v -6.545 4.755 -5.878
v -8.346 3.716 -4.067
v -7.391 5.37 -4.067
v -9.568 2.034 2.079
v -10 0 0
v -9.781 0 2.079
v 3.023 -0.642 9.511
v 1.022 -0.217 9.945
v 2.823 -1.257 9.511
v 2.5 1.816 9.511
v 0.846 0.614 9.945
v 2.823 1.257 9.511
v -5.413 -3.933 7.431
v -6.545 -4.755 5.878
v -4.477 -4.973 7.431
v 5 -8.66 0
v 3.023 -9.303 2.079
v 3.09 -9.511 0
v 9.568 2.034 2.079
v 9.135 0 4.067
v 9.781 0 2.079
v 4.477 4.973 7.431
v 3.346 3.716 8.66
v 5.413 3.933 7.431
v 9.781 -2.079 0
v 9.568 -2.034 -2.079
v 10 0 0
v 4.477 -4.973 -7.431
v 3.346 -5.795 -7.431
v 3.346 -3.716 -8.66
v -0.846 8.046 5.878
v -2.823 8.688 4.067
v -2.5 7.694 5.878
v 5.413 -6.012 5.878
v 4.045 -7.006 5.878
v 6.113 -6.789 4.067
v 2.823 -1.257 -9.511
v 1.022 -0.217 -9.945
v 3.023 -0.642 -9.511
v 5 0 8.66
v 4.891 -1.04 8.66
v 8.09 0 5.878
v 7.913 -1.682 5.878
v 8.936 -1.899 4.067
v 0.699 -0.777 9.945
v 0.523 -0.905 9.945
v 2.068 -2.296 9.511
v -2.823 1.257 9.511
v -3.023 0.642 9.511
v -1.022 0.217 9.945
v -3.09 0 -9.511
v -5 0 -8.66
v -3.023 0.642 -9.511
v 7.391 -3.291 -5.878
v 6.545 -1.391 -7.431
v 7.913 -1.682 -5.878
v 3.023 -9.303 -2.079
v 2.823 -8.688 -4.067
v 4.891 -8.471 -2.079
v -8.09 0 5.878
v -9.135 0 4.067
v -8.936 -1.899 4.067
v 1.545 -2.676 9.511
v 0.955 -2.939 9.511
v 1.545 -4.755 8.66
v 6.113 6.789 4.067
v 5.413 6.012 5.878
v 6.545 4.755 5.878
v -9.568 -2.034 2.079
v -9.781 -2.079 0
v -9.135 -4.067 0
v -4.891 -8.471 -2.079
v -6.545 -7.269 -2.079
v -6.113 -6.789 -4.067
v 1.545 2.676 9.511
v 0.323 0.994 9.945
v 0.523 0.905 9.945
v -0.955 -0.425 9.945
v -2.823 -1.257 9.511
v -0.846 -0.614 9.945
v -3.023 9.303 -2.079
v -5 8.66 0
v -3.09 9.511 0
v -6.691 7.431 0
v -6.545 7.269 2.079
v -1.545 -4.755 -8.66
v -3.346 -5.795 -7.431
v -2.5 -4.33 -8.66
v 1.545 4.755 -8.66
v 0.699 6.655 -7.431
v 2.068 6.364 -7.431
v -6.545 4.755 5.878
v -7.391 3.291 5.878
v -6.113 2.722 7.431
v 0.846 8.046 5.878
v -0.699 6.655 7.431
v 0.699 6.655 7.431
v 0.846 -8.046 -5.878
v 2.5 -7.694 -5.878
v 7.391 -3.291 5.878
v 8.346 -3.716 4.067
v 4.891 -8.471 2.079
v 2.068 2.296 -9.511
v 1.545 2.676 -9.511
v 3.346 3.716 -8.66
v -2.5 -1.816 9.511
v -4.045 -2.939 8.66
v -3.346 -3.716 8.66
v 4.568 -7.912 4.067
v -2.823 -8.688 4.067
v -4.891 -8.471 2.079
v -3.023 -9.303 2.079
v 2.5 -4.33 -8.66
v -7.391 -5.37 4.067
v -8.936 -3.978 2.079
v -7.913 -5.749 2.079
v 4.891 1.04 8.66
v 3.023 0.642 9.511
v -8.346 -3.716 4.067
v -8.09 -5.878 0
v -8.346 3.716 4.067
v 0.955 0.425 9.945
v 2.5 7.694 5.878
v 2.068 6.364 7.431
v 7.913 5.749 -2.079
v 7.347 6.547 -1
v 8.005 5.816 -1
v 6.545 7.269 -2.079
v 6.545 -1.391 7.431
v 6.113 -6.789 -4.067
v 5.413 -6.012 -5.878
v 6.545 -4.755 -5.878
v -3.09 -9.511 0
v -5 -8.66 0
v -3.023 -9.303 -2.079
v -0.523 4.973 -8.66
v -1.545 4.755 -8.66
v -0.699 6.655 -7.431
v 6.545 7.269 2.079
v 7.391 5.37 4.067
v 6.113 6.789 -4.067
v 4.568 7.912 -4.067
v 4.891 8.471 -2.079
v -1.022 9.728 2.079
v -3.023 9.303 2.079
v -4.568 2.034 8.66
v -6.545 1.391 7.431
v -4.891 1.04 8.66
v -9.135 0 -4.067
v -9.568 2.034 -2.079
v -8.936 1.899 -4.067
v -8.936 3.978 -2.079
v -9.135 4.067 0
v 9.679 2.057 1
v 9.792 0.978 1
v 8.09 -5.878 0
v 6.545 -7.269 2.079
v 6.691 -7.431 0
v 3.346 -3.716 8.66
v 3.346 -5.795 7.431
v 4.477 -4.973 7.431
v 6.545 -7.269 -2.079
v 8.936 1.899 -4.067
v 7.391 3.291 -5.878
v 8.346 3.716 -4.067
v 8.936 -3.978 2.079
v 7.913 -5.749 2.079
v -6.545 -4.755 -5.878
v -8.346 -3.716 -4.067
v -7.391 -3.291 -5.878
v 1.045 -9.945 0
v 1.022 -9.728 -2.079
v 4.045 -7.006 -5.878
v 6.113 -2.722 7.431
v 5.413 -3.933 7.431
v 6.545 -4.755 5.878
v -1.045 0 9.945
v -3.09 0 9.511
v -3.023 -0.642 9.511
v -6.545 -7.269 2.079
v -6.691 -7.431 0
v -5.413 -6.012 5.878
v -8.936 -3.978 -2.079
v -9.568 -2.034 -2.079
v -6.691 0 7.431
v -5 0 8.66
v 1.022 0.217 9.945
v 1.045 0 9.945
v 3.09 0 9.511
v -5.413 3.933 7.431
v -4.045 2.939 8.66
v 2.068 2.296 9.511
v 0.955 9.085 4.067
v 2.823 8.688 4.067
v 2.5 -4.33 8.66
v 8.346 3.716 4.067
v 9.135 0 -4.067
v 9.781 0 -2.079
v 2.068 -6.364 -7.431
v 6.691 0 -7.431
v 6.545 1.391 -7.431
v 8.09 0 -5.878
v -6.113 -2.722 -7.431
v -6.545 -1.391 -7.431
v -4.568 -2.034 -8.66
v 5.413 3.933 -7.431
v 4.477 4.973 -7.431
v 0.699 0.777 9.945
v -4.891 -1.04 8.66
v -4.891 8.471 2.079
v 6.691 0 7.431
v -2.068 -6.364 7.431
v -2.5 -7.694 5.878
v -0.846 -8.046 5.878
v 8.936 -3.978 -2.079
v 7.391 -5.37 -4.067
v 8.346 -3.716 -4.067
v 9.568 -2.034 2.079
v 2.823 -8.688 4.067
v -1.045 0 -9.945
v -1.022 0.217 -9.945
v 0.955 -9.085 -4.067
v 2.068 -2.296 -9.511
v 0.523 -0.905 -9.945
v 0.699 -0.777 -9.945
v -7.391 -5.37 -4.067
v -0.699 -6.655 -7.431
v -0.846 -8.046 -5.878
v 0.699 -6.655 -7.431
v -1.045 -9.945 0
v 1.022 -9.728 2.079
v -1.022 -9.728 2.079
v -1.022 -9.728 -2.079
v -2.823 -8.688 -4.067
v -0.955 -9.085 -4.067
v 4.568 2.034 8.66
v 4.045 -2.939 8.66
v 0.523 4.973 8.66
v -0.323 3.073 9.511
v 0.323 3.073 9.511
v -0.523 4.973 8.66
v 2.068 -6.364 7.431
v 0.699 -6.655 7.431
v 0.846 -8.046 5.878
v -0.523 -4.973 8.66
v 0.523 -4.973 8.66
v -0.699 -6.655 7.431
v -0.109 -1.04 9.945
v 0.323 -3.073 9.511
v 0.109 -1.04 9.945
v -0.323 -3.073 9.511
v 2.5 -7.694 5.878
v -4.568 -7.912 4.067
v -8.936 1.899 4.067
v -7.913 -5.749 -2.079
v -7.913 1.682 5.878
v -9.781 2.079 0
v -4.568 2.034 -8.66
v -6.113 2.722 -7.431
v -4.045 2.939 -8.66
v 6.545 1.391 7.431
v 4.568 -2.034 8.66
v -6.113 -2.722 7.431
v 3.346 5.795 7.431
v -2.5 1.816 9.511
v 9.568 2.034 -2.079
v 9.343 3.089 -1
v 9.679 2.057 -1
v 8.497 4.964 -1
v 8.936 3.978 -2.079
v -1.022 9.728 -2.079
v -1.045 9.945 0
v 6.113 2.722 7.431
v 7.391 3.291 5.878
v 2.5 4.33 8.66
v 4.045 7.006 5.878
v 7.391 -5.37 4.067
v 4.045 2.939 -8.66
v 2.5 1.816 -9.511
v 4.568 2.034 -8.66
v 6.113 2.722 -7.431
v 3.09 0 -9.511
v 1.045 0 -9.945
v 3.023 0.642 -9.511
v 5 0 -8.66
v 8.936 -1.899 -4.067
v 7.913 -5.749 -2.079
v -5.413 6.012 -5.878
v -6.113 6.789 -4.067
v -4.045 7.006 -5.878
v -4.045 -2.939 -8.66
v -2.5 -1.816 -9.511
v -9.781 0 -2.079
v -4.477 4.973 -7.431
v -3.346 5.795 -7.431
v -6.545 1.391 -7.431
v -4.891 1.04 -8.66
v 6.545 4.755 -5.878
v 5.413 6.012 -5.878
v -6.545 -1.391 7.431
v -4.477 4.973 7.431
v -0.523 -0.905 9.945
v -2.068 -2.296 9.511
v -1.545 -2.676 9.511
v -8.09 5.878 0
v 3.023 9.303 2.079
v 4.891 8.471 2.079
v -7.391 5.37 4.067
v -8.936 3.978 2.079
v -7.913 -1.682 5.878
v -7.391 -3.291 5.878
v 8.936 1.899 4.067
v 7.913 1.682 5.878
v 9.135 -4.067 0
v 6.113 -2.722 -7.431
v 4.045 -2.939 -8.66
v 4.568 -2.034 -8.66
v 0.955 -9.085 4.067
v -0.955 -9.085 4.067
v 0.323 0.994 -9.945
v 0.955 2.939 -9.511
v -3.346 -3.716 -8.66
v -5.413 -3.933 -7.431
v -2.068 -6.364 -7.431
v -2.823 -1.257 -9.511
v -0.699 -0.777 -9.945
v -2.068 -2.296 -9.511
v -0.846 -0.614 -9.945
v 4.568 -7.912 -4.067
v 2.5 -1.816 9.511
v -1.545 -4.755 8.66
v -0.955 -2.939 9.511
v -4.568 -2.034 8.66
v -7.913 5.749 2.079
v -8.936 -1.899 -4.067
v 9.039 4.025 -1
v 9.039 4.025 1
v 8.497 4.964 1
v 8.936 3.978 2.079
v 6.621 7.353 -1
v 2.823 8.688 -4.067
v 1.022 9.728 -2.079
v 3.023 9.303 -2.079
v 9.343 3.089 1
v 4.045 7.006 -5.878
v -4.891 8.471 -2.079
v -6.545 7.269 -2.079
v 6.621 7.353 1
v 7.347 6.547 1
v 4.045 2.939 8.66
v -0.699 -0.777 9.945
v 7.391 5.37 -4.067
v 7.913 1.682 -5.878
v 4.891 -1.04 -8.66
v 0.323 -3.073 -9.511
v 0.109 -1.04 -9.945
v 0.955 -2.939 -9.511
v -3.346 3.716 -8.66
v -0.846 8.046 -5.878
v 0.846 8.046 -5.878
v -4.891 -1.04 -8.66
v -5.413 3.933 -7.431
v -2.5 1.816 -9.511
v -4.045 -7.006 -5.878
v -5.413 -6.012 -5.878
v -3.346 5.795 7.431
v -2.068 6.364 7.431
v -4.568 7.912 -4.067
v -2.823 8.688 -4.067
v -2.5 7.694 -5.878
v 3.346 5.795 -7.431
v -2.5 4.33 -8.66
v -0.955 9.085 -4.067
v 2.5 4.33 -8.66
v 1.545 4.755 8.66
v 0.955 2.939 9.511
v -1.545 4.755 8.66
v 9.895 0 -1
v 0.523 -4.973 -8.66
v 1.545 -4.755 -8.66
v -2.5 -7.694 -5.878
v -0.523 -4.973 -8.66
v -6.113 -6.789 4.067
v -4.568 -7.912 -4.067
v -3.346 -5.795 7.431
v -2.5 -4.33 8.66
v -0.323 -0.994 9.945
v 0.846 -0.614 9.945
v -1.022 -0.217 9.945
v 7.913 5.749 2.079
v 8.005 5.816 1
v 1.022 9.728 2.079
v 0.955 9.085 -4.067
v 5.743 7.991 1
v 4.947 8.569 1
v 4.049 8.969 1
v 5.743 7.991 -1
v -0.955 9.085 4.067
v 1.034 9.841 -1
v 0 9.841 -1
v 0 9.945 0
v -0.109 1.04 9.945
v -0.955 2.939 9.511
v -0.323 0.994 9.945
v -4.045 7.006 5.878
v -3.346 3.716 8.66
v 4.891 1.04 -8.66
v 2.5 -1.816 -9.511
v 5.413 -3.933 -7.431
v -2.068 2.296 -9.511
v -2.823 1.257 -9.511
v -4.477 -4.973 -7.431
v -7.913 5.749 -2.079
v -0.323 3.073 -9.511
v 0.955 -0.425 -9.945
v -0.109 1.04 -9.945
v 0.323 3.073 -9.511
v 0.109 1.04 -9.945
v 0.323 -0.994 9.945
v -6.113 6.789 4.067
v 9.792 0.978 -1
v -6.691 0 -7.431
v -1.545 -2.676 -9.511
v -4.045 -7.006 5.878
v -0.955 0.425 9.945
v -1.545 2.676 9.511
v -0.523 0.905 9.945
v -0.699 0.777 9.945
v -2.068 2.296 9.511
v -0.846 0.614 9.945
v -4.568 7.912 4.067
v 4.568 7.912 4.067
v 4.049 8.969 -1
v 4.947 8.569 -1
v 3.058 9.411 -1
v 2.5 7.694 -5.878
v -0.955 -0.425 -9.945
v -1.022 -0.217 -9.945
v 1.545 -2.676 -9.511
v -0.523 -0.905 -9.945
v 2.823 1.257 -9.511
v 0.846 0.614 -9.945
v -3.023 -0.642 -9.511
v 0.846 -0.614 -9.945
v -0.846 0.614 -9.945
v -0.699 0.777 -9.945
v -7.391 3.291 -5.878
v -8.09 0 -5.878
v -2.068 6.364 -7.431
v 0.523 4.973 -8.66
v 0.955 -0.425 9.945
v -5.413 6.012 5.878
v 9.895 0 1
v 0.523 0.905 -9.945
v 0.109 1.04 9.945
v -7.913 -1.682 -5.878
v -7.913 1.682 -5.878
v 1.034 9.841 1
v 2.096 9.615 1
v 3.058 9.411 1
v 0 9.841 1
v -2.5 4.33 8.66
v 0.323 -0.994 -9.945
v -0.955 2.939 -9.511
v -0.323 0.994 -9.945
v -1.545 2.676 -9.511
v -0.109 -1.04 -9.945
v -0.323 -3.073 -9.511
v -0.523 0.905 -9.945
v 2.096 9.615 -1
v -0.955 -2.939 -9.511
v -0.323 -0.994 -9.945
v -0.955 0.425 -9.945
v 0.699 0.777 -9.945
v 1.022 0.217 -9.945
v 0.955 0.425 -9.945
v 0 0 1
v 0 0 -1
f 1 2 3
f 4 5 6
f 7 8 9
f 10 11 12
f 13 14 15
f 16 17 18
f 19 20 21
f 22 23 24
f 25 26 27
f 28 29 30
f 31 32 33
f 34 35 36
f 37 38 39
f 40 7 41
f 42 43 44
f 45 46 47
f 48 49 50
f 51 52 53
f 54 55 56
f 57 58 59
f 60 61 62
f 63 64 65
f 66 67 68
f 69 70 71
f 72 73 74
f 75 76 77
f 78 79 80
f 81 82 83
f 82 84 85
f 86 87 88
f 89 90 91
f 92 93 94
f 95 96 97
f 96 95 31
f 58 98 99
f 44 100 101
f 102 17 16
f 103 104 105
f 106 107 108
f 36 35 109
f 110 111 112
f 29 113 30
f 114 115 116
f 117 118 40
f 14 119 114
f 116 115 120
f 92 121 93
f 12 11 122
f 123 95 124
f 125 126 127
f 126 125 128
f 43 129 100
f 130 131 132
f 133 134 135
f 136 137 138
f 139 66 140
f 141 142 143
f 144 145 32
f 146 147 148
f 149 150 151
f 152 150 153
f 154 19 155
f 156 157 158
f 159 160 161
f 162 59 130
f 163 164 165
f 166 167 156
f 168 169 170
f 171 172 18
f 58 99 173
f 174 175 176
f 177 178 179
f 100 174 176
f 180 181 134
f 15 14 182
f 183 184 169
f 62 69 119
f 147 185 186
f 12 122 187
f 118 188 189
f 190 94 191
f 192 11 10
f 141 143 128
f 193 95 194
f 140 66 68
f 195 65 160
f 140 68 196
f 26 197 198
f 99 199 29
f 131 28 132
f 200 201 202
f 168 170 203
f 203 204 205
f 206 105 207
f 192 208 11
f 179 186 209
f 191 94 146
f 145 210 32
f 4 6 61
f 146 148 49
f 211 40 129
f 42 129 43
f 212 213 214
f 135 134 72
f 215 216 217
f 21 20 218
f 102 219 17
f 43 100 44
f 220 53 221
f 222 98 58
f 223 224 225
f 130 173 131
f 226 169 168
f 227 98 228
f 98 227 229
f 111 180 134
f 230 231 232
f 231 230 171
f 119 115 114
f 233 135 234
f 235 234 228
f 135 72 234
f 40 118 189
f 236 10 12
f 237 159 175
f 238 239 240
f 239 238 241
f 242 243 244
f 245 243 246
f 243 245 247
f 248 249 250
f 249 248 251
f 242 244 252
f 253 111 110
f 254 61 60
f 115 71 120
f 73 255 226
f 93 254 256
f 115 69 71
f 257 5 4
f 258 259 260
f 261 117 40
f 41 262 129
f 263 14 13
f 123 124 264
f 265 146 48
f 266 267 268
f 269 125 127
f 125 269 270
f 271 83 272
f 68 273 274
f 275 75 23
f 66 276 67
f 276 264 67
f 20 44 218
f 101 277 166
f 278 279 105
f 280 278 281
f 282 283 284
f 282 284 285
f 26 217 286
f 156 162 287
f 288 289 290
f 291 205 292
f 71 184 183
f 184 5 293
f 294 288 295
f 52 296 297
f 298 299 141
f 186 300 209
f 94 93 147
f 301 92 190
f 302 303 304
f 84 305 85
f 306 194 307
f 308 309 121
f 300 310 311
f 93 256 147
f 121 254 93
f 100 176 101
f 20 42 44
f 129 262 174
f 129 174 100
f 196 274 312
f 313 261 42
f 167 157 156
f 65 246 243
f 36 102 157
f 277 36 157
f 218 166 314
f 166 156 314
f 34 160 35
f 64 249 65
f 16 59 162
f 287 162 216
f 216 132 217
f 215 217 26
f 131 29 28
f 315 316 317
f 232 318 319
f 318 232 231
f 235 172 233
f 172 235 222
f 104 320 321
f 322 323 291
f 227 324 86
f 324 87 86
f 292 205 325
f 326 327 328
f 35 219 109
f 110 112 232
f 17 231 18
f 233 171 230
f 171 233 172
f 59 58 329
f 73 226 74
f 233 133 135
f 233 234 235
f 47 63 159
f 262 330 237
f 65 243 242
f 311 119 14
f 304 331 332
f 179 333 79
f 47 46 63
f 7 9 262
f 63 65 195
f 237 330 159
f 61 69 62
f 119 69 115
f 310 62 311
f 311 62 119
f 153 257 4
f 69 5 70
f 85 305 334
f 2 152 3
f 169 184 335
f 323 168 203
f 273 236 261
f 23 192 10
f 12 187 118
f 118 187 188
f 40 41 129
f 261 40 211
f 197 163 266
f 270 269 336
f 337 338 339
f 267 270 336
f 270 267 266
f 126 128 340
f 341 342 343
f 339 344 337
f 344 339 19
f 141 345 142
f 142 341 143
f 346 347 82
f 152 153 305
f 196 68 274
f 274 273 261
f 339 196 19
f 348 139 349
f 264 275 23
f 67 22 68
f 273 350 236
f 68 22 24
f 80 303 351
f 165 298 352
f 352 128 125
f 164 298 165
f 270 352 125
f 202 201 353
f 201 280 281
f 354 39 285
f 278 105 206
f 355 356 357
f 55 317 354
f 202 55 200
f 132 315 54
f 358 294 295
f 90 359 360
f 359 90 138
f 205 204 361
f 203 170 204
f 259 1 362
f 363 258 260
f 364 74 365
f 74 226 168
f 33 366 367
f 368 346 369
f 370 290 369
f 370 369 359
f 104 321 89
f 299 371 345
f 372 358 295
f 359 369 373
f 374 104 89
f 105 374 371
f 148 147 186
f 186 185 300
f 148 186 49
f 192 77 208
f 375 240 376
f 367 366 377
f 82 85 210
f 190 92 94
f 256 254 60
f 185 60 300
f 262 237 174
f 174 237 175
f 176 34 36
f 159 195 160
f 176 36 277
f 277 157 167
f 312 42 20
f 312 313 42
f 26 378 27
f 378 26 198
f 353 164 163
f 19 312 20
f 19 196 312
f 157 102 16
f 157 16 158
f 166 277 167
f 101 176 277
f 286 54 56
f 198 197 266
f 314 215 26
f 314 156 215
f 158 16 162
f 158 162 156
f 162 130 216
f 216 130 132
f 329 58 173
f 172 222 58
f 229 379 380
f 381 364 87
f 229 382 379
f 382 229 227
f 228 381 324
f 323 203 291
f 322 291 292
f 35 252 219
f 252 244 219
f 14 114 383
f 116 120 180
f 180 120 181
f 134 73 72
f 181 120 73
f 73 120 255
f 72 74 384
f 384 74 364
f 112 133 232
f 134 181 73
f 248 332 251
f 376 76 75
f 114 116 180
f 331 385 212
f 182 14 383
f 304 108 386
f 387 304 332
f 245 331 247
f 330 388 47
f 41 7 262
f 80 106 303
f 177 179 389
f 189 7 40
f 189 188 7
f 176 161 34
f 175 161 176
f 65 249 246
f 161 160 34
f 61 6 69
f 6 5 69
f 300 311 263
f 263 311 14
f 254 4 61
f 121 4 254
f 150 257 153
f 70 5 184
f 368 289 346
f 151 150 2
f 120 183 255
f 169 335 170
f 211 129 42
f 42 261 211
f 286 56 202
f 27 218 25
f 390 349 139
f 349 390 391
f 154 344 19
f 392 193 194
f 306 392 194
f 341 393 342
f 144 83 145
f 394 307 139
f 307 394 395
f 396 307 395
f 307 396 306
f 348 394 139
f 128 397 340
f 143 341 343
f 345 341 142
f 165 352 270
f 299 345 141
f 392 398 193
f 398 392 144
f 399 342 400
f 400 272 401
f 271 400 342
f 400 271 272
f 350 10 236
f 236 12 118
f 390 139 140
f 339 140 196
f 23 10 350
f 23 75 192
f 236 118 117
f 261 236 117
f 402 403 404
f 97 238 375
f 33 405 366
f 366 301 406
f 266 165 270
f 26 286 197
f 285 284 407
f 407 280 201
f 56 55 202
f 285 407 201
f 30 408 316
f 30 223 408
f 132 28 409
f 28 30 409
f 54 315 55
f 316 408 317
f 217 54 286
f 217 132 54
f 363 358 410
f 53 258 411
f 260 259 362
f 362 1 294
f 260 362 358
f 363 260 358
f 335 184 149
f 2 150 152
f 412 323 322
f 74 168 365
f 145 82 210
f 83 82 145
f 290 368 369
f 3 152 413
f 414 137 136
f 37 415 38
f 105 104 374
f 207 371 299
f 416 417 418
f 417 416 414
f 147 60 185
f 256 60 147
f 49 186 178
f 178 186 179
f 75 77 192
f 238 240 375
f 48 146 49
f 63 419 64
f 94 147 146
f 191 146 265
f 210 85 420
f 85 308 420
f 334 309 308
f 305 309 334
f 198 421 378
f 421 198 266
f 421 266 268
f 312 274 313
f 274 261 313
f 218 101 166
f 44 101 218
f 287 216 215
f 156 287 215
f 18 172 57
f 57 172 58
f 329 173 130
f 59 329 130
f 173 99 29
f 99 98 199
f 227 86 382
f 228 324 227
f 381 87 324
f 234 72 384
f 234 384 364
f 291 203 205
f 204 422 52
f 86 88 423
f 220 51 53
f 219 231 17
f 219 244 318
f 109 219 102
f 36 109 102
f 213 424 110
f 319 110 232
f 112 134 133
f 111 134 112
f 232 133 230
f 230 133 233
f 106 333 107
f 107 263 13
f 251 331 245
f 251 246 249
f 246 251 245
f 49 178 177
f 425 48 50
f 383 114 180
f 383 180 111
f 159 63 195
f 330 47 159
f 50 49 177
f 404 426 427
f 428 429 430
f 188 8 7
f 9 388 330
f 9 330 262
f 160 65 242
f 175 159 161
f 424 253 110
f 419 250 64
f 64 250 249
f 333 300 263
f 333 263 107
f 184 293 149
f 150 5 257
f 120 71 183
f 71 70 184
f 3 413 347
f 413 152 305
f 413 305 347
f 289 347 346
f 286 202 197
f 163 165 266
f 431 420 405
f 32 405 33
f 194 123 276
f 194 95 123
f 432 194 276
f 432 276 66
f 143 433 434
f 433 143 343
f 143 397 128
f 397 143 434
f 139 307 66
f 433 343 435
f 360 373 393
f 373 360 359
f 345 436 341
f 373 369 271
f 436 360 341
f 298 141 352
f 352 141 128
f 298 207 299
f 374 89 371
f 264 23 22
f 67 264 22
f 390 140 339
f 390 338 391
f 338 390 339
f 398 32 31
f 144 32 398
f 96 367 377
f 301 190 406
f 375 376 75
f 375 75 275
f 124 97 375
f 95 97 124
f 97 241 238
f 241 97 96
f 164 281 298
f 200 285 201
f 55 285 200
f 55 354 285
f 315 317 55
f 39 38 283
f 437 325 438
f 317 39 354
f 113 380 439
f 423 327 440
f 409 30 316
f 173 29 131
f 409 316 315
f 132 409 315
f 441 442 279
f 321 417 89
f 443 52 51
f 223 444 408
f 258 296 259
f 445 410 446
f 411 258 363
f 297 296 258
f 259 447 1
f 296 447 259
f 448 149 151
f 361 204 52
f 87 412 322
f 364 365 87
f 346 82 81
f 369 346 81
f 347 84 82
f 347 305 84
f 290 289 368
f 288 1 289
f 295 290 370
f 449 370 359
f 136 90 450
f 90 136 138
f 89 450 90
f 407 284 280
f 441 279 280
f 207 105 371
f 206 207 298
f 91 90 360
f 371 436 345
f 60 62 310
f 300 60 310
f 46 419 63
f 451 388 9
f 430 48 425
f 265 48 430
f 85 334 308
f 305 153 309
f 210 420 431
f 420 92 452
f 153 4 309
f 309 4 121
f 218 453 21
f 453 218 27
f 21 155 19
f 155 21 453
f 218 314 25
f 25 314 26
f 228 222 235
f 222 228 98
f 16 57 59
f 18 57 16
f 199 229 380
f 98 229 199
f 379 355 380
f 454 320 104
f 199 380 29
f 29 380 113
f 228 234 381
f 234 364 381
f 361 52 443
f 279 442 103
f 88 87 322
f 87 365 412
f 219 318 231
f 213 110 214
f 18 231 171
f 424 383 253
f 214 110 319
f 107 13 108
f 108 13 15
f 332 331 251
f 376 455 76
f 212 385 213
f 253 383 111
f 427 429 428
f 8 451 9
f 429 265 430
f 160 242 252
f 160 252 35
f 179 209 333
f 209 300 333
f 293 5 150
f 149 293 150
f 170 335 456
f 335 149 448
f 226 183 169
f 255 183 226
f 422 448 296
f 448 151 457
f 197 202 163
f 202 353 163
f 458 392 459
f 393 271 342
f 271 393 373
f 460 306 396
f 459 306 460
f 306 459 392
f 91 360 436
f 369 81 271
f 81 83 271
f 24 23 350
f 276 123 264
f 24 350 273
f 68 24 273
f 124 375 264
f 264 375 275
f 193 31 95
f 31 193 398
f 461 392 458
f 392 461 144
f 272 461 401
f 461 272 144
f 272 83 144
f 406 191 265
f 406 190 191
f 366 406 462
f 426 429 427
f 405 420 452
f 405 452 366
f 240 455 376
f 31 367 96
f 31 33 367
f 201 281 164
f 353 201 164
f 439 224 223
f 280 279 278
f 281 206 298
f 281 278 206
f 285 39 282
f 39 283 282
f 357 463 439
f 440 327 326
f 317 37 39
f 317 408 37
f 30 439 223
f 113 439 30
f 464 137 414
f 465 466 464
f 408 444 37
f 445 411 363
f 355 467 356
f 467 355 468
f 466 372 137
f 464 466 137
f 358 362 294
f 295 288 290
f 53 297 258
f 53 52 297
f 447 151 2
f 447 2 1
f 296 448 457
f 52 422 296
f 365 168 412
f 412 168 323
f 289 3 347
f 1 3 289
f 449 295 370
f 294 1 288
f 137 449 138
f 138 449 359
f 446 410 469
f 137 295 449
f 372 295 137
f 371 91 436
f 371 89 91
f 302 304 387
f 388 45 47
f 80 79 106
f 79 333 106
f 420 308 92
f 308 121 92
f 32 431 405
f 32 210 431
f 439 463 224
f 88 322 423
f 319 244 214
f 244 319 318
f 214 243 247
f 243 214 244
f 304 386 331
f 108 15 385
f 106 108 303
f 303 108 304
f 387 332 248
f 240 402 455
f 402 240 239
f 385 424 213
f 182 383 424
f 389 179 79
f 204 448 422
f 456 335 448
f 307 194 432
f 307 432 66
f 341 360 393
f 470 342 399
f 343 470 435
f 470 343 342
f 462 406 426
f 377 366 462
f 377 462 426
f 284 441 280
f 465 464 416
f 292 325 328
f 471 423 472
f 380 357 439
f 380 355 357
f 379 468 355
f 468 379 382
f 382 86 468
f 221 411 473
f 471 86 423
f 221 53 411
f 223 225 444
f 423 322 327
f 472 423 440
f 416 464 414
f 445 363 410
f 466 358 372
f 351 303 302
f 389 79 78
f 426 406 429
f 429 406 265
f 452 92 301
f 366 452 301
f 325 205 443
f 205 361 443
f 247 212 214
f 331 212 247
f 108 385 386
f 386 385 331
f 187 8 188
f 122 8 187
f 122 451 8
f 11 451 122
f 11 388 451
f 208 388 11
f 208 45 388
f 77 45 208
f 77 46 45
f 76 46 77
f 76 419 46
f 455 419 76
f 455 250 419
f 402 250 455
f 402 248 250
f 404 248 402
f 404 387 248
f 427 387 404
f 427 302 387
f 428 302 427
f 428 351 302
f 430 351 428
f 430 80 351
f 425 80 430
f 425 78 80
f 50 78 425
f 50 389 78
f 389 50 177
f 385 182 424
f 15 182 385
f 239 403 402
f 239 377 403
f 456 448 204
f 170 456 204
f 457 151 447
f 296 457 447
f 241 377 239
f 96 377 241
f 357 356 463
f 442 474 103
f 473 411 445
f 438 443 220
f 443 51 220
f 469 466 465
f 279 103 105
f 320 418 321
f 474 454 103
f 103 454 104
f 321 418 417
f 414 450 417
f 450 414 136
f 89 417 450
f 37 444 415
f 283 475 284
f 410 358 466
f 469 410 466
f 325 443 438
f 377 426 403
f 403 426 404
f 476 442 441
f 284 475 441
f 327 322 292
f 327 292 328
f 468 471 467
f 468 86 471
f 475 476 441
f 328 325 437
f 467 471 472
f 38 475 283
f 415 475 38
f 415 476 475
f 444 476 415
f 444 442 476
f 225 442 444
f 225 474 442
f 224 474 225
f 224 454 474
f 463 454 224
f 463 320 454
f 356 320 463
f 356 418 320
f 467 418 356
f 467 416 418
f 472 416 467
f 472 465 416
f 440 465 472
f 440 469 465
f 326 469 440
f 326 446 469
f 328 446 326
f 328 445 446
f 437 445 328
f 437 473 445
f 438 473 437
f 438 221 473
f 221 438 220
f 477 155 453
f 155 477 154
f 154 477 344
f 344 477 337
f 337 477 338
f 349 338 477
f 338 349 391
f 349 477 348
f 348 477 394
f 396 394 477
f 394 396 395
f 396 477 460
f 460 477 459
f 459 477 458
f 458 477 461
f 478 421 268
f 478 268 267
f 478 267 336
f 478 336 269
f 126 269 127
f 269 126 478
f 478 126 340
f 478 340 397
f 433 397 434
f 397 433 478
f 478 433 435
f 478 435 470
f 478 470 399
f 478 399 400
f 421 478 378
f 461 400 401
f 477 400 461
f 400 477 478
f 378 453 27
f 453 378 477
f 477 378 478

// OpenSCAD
// Create a sphere with a cube as a difference
sphere_radius = 10;
cube_size = 20;

difference() {
  sphere(r = sphere_radius);
  translate([0, 0, -1]) cube([cube_size, cube_size, 2]);
}
